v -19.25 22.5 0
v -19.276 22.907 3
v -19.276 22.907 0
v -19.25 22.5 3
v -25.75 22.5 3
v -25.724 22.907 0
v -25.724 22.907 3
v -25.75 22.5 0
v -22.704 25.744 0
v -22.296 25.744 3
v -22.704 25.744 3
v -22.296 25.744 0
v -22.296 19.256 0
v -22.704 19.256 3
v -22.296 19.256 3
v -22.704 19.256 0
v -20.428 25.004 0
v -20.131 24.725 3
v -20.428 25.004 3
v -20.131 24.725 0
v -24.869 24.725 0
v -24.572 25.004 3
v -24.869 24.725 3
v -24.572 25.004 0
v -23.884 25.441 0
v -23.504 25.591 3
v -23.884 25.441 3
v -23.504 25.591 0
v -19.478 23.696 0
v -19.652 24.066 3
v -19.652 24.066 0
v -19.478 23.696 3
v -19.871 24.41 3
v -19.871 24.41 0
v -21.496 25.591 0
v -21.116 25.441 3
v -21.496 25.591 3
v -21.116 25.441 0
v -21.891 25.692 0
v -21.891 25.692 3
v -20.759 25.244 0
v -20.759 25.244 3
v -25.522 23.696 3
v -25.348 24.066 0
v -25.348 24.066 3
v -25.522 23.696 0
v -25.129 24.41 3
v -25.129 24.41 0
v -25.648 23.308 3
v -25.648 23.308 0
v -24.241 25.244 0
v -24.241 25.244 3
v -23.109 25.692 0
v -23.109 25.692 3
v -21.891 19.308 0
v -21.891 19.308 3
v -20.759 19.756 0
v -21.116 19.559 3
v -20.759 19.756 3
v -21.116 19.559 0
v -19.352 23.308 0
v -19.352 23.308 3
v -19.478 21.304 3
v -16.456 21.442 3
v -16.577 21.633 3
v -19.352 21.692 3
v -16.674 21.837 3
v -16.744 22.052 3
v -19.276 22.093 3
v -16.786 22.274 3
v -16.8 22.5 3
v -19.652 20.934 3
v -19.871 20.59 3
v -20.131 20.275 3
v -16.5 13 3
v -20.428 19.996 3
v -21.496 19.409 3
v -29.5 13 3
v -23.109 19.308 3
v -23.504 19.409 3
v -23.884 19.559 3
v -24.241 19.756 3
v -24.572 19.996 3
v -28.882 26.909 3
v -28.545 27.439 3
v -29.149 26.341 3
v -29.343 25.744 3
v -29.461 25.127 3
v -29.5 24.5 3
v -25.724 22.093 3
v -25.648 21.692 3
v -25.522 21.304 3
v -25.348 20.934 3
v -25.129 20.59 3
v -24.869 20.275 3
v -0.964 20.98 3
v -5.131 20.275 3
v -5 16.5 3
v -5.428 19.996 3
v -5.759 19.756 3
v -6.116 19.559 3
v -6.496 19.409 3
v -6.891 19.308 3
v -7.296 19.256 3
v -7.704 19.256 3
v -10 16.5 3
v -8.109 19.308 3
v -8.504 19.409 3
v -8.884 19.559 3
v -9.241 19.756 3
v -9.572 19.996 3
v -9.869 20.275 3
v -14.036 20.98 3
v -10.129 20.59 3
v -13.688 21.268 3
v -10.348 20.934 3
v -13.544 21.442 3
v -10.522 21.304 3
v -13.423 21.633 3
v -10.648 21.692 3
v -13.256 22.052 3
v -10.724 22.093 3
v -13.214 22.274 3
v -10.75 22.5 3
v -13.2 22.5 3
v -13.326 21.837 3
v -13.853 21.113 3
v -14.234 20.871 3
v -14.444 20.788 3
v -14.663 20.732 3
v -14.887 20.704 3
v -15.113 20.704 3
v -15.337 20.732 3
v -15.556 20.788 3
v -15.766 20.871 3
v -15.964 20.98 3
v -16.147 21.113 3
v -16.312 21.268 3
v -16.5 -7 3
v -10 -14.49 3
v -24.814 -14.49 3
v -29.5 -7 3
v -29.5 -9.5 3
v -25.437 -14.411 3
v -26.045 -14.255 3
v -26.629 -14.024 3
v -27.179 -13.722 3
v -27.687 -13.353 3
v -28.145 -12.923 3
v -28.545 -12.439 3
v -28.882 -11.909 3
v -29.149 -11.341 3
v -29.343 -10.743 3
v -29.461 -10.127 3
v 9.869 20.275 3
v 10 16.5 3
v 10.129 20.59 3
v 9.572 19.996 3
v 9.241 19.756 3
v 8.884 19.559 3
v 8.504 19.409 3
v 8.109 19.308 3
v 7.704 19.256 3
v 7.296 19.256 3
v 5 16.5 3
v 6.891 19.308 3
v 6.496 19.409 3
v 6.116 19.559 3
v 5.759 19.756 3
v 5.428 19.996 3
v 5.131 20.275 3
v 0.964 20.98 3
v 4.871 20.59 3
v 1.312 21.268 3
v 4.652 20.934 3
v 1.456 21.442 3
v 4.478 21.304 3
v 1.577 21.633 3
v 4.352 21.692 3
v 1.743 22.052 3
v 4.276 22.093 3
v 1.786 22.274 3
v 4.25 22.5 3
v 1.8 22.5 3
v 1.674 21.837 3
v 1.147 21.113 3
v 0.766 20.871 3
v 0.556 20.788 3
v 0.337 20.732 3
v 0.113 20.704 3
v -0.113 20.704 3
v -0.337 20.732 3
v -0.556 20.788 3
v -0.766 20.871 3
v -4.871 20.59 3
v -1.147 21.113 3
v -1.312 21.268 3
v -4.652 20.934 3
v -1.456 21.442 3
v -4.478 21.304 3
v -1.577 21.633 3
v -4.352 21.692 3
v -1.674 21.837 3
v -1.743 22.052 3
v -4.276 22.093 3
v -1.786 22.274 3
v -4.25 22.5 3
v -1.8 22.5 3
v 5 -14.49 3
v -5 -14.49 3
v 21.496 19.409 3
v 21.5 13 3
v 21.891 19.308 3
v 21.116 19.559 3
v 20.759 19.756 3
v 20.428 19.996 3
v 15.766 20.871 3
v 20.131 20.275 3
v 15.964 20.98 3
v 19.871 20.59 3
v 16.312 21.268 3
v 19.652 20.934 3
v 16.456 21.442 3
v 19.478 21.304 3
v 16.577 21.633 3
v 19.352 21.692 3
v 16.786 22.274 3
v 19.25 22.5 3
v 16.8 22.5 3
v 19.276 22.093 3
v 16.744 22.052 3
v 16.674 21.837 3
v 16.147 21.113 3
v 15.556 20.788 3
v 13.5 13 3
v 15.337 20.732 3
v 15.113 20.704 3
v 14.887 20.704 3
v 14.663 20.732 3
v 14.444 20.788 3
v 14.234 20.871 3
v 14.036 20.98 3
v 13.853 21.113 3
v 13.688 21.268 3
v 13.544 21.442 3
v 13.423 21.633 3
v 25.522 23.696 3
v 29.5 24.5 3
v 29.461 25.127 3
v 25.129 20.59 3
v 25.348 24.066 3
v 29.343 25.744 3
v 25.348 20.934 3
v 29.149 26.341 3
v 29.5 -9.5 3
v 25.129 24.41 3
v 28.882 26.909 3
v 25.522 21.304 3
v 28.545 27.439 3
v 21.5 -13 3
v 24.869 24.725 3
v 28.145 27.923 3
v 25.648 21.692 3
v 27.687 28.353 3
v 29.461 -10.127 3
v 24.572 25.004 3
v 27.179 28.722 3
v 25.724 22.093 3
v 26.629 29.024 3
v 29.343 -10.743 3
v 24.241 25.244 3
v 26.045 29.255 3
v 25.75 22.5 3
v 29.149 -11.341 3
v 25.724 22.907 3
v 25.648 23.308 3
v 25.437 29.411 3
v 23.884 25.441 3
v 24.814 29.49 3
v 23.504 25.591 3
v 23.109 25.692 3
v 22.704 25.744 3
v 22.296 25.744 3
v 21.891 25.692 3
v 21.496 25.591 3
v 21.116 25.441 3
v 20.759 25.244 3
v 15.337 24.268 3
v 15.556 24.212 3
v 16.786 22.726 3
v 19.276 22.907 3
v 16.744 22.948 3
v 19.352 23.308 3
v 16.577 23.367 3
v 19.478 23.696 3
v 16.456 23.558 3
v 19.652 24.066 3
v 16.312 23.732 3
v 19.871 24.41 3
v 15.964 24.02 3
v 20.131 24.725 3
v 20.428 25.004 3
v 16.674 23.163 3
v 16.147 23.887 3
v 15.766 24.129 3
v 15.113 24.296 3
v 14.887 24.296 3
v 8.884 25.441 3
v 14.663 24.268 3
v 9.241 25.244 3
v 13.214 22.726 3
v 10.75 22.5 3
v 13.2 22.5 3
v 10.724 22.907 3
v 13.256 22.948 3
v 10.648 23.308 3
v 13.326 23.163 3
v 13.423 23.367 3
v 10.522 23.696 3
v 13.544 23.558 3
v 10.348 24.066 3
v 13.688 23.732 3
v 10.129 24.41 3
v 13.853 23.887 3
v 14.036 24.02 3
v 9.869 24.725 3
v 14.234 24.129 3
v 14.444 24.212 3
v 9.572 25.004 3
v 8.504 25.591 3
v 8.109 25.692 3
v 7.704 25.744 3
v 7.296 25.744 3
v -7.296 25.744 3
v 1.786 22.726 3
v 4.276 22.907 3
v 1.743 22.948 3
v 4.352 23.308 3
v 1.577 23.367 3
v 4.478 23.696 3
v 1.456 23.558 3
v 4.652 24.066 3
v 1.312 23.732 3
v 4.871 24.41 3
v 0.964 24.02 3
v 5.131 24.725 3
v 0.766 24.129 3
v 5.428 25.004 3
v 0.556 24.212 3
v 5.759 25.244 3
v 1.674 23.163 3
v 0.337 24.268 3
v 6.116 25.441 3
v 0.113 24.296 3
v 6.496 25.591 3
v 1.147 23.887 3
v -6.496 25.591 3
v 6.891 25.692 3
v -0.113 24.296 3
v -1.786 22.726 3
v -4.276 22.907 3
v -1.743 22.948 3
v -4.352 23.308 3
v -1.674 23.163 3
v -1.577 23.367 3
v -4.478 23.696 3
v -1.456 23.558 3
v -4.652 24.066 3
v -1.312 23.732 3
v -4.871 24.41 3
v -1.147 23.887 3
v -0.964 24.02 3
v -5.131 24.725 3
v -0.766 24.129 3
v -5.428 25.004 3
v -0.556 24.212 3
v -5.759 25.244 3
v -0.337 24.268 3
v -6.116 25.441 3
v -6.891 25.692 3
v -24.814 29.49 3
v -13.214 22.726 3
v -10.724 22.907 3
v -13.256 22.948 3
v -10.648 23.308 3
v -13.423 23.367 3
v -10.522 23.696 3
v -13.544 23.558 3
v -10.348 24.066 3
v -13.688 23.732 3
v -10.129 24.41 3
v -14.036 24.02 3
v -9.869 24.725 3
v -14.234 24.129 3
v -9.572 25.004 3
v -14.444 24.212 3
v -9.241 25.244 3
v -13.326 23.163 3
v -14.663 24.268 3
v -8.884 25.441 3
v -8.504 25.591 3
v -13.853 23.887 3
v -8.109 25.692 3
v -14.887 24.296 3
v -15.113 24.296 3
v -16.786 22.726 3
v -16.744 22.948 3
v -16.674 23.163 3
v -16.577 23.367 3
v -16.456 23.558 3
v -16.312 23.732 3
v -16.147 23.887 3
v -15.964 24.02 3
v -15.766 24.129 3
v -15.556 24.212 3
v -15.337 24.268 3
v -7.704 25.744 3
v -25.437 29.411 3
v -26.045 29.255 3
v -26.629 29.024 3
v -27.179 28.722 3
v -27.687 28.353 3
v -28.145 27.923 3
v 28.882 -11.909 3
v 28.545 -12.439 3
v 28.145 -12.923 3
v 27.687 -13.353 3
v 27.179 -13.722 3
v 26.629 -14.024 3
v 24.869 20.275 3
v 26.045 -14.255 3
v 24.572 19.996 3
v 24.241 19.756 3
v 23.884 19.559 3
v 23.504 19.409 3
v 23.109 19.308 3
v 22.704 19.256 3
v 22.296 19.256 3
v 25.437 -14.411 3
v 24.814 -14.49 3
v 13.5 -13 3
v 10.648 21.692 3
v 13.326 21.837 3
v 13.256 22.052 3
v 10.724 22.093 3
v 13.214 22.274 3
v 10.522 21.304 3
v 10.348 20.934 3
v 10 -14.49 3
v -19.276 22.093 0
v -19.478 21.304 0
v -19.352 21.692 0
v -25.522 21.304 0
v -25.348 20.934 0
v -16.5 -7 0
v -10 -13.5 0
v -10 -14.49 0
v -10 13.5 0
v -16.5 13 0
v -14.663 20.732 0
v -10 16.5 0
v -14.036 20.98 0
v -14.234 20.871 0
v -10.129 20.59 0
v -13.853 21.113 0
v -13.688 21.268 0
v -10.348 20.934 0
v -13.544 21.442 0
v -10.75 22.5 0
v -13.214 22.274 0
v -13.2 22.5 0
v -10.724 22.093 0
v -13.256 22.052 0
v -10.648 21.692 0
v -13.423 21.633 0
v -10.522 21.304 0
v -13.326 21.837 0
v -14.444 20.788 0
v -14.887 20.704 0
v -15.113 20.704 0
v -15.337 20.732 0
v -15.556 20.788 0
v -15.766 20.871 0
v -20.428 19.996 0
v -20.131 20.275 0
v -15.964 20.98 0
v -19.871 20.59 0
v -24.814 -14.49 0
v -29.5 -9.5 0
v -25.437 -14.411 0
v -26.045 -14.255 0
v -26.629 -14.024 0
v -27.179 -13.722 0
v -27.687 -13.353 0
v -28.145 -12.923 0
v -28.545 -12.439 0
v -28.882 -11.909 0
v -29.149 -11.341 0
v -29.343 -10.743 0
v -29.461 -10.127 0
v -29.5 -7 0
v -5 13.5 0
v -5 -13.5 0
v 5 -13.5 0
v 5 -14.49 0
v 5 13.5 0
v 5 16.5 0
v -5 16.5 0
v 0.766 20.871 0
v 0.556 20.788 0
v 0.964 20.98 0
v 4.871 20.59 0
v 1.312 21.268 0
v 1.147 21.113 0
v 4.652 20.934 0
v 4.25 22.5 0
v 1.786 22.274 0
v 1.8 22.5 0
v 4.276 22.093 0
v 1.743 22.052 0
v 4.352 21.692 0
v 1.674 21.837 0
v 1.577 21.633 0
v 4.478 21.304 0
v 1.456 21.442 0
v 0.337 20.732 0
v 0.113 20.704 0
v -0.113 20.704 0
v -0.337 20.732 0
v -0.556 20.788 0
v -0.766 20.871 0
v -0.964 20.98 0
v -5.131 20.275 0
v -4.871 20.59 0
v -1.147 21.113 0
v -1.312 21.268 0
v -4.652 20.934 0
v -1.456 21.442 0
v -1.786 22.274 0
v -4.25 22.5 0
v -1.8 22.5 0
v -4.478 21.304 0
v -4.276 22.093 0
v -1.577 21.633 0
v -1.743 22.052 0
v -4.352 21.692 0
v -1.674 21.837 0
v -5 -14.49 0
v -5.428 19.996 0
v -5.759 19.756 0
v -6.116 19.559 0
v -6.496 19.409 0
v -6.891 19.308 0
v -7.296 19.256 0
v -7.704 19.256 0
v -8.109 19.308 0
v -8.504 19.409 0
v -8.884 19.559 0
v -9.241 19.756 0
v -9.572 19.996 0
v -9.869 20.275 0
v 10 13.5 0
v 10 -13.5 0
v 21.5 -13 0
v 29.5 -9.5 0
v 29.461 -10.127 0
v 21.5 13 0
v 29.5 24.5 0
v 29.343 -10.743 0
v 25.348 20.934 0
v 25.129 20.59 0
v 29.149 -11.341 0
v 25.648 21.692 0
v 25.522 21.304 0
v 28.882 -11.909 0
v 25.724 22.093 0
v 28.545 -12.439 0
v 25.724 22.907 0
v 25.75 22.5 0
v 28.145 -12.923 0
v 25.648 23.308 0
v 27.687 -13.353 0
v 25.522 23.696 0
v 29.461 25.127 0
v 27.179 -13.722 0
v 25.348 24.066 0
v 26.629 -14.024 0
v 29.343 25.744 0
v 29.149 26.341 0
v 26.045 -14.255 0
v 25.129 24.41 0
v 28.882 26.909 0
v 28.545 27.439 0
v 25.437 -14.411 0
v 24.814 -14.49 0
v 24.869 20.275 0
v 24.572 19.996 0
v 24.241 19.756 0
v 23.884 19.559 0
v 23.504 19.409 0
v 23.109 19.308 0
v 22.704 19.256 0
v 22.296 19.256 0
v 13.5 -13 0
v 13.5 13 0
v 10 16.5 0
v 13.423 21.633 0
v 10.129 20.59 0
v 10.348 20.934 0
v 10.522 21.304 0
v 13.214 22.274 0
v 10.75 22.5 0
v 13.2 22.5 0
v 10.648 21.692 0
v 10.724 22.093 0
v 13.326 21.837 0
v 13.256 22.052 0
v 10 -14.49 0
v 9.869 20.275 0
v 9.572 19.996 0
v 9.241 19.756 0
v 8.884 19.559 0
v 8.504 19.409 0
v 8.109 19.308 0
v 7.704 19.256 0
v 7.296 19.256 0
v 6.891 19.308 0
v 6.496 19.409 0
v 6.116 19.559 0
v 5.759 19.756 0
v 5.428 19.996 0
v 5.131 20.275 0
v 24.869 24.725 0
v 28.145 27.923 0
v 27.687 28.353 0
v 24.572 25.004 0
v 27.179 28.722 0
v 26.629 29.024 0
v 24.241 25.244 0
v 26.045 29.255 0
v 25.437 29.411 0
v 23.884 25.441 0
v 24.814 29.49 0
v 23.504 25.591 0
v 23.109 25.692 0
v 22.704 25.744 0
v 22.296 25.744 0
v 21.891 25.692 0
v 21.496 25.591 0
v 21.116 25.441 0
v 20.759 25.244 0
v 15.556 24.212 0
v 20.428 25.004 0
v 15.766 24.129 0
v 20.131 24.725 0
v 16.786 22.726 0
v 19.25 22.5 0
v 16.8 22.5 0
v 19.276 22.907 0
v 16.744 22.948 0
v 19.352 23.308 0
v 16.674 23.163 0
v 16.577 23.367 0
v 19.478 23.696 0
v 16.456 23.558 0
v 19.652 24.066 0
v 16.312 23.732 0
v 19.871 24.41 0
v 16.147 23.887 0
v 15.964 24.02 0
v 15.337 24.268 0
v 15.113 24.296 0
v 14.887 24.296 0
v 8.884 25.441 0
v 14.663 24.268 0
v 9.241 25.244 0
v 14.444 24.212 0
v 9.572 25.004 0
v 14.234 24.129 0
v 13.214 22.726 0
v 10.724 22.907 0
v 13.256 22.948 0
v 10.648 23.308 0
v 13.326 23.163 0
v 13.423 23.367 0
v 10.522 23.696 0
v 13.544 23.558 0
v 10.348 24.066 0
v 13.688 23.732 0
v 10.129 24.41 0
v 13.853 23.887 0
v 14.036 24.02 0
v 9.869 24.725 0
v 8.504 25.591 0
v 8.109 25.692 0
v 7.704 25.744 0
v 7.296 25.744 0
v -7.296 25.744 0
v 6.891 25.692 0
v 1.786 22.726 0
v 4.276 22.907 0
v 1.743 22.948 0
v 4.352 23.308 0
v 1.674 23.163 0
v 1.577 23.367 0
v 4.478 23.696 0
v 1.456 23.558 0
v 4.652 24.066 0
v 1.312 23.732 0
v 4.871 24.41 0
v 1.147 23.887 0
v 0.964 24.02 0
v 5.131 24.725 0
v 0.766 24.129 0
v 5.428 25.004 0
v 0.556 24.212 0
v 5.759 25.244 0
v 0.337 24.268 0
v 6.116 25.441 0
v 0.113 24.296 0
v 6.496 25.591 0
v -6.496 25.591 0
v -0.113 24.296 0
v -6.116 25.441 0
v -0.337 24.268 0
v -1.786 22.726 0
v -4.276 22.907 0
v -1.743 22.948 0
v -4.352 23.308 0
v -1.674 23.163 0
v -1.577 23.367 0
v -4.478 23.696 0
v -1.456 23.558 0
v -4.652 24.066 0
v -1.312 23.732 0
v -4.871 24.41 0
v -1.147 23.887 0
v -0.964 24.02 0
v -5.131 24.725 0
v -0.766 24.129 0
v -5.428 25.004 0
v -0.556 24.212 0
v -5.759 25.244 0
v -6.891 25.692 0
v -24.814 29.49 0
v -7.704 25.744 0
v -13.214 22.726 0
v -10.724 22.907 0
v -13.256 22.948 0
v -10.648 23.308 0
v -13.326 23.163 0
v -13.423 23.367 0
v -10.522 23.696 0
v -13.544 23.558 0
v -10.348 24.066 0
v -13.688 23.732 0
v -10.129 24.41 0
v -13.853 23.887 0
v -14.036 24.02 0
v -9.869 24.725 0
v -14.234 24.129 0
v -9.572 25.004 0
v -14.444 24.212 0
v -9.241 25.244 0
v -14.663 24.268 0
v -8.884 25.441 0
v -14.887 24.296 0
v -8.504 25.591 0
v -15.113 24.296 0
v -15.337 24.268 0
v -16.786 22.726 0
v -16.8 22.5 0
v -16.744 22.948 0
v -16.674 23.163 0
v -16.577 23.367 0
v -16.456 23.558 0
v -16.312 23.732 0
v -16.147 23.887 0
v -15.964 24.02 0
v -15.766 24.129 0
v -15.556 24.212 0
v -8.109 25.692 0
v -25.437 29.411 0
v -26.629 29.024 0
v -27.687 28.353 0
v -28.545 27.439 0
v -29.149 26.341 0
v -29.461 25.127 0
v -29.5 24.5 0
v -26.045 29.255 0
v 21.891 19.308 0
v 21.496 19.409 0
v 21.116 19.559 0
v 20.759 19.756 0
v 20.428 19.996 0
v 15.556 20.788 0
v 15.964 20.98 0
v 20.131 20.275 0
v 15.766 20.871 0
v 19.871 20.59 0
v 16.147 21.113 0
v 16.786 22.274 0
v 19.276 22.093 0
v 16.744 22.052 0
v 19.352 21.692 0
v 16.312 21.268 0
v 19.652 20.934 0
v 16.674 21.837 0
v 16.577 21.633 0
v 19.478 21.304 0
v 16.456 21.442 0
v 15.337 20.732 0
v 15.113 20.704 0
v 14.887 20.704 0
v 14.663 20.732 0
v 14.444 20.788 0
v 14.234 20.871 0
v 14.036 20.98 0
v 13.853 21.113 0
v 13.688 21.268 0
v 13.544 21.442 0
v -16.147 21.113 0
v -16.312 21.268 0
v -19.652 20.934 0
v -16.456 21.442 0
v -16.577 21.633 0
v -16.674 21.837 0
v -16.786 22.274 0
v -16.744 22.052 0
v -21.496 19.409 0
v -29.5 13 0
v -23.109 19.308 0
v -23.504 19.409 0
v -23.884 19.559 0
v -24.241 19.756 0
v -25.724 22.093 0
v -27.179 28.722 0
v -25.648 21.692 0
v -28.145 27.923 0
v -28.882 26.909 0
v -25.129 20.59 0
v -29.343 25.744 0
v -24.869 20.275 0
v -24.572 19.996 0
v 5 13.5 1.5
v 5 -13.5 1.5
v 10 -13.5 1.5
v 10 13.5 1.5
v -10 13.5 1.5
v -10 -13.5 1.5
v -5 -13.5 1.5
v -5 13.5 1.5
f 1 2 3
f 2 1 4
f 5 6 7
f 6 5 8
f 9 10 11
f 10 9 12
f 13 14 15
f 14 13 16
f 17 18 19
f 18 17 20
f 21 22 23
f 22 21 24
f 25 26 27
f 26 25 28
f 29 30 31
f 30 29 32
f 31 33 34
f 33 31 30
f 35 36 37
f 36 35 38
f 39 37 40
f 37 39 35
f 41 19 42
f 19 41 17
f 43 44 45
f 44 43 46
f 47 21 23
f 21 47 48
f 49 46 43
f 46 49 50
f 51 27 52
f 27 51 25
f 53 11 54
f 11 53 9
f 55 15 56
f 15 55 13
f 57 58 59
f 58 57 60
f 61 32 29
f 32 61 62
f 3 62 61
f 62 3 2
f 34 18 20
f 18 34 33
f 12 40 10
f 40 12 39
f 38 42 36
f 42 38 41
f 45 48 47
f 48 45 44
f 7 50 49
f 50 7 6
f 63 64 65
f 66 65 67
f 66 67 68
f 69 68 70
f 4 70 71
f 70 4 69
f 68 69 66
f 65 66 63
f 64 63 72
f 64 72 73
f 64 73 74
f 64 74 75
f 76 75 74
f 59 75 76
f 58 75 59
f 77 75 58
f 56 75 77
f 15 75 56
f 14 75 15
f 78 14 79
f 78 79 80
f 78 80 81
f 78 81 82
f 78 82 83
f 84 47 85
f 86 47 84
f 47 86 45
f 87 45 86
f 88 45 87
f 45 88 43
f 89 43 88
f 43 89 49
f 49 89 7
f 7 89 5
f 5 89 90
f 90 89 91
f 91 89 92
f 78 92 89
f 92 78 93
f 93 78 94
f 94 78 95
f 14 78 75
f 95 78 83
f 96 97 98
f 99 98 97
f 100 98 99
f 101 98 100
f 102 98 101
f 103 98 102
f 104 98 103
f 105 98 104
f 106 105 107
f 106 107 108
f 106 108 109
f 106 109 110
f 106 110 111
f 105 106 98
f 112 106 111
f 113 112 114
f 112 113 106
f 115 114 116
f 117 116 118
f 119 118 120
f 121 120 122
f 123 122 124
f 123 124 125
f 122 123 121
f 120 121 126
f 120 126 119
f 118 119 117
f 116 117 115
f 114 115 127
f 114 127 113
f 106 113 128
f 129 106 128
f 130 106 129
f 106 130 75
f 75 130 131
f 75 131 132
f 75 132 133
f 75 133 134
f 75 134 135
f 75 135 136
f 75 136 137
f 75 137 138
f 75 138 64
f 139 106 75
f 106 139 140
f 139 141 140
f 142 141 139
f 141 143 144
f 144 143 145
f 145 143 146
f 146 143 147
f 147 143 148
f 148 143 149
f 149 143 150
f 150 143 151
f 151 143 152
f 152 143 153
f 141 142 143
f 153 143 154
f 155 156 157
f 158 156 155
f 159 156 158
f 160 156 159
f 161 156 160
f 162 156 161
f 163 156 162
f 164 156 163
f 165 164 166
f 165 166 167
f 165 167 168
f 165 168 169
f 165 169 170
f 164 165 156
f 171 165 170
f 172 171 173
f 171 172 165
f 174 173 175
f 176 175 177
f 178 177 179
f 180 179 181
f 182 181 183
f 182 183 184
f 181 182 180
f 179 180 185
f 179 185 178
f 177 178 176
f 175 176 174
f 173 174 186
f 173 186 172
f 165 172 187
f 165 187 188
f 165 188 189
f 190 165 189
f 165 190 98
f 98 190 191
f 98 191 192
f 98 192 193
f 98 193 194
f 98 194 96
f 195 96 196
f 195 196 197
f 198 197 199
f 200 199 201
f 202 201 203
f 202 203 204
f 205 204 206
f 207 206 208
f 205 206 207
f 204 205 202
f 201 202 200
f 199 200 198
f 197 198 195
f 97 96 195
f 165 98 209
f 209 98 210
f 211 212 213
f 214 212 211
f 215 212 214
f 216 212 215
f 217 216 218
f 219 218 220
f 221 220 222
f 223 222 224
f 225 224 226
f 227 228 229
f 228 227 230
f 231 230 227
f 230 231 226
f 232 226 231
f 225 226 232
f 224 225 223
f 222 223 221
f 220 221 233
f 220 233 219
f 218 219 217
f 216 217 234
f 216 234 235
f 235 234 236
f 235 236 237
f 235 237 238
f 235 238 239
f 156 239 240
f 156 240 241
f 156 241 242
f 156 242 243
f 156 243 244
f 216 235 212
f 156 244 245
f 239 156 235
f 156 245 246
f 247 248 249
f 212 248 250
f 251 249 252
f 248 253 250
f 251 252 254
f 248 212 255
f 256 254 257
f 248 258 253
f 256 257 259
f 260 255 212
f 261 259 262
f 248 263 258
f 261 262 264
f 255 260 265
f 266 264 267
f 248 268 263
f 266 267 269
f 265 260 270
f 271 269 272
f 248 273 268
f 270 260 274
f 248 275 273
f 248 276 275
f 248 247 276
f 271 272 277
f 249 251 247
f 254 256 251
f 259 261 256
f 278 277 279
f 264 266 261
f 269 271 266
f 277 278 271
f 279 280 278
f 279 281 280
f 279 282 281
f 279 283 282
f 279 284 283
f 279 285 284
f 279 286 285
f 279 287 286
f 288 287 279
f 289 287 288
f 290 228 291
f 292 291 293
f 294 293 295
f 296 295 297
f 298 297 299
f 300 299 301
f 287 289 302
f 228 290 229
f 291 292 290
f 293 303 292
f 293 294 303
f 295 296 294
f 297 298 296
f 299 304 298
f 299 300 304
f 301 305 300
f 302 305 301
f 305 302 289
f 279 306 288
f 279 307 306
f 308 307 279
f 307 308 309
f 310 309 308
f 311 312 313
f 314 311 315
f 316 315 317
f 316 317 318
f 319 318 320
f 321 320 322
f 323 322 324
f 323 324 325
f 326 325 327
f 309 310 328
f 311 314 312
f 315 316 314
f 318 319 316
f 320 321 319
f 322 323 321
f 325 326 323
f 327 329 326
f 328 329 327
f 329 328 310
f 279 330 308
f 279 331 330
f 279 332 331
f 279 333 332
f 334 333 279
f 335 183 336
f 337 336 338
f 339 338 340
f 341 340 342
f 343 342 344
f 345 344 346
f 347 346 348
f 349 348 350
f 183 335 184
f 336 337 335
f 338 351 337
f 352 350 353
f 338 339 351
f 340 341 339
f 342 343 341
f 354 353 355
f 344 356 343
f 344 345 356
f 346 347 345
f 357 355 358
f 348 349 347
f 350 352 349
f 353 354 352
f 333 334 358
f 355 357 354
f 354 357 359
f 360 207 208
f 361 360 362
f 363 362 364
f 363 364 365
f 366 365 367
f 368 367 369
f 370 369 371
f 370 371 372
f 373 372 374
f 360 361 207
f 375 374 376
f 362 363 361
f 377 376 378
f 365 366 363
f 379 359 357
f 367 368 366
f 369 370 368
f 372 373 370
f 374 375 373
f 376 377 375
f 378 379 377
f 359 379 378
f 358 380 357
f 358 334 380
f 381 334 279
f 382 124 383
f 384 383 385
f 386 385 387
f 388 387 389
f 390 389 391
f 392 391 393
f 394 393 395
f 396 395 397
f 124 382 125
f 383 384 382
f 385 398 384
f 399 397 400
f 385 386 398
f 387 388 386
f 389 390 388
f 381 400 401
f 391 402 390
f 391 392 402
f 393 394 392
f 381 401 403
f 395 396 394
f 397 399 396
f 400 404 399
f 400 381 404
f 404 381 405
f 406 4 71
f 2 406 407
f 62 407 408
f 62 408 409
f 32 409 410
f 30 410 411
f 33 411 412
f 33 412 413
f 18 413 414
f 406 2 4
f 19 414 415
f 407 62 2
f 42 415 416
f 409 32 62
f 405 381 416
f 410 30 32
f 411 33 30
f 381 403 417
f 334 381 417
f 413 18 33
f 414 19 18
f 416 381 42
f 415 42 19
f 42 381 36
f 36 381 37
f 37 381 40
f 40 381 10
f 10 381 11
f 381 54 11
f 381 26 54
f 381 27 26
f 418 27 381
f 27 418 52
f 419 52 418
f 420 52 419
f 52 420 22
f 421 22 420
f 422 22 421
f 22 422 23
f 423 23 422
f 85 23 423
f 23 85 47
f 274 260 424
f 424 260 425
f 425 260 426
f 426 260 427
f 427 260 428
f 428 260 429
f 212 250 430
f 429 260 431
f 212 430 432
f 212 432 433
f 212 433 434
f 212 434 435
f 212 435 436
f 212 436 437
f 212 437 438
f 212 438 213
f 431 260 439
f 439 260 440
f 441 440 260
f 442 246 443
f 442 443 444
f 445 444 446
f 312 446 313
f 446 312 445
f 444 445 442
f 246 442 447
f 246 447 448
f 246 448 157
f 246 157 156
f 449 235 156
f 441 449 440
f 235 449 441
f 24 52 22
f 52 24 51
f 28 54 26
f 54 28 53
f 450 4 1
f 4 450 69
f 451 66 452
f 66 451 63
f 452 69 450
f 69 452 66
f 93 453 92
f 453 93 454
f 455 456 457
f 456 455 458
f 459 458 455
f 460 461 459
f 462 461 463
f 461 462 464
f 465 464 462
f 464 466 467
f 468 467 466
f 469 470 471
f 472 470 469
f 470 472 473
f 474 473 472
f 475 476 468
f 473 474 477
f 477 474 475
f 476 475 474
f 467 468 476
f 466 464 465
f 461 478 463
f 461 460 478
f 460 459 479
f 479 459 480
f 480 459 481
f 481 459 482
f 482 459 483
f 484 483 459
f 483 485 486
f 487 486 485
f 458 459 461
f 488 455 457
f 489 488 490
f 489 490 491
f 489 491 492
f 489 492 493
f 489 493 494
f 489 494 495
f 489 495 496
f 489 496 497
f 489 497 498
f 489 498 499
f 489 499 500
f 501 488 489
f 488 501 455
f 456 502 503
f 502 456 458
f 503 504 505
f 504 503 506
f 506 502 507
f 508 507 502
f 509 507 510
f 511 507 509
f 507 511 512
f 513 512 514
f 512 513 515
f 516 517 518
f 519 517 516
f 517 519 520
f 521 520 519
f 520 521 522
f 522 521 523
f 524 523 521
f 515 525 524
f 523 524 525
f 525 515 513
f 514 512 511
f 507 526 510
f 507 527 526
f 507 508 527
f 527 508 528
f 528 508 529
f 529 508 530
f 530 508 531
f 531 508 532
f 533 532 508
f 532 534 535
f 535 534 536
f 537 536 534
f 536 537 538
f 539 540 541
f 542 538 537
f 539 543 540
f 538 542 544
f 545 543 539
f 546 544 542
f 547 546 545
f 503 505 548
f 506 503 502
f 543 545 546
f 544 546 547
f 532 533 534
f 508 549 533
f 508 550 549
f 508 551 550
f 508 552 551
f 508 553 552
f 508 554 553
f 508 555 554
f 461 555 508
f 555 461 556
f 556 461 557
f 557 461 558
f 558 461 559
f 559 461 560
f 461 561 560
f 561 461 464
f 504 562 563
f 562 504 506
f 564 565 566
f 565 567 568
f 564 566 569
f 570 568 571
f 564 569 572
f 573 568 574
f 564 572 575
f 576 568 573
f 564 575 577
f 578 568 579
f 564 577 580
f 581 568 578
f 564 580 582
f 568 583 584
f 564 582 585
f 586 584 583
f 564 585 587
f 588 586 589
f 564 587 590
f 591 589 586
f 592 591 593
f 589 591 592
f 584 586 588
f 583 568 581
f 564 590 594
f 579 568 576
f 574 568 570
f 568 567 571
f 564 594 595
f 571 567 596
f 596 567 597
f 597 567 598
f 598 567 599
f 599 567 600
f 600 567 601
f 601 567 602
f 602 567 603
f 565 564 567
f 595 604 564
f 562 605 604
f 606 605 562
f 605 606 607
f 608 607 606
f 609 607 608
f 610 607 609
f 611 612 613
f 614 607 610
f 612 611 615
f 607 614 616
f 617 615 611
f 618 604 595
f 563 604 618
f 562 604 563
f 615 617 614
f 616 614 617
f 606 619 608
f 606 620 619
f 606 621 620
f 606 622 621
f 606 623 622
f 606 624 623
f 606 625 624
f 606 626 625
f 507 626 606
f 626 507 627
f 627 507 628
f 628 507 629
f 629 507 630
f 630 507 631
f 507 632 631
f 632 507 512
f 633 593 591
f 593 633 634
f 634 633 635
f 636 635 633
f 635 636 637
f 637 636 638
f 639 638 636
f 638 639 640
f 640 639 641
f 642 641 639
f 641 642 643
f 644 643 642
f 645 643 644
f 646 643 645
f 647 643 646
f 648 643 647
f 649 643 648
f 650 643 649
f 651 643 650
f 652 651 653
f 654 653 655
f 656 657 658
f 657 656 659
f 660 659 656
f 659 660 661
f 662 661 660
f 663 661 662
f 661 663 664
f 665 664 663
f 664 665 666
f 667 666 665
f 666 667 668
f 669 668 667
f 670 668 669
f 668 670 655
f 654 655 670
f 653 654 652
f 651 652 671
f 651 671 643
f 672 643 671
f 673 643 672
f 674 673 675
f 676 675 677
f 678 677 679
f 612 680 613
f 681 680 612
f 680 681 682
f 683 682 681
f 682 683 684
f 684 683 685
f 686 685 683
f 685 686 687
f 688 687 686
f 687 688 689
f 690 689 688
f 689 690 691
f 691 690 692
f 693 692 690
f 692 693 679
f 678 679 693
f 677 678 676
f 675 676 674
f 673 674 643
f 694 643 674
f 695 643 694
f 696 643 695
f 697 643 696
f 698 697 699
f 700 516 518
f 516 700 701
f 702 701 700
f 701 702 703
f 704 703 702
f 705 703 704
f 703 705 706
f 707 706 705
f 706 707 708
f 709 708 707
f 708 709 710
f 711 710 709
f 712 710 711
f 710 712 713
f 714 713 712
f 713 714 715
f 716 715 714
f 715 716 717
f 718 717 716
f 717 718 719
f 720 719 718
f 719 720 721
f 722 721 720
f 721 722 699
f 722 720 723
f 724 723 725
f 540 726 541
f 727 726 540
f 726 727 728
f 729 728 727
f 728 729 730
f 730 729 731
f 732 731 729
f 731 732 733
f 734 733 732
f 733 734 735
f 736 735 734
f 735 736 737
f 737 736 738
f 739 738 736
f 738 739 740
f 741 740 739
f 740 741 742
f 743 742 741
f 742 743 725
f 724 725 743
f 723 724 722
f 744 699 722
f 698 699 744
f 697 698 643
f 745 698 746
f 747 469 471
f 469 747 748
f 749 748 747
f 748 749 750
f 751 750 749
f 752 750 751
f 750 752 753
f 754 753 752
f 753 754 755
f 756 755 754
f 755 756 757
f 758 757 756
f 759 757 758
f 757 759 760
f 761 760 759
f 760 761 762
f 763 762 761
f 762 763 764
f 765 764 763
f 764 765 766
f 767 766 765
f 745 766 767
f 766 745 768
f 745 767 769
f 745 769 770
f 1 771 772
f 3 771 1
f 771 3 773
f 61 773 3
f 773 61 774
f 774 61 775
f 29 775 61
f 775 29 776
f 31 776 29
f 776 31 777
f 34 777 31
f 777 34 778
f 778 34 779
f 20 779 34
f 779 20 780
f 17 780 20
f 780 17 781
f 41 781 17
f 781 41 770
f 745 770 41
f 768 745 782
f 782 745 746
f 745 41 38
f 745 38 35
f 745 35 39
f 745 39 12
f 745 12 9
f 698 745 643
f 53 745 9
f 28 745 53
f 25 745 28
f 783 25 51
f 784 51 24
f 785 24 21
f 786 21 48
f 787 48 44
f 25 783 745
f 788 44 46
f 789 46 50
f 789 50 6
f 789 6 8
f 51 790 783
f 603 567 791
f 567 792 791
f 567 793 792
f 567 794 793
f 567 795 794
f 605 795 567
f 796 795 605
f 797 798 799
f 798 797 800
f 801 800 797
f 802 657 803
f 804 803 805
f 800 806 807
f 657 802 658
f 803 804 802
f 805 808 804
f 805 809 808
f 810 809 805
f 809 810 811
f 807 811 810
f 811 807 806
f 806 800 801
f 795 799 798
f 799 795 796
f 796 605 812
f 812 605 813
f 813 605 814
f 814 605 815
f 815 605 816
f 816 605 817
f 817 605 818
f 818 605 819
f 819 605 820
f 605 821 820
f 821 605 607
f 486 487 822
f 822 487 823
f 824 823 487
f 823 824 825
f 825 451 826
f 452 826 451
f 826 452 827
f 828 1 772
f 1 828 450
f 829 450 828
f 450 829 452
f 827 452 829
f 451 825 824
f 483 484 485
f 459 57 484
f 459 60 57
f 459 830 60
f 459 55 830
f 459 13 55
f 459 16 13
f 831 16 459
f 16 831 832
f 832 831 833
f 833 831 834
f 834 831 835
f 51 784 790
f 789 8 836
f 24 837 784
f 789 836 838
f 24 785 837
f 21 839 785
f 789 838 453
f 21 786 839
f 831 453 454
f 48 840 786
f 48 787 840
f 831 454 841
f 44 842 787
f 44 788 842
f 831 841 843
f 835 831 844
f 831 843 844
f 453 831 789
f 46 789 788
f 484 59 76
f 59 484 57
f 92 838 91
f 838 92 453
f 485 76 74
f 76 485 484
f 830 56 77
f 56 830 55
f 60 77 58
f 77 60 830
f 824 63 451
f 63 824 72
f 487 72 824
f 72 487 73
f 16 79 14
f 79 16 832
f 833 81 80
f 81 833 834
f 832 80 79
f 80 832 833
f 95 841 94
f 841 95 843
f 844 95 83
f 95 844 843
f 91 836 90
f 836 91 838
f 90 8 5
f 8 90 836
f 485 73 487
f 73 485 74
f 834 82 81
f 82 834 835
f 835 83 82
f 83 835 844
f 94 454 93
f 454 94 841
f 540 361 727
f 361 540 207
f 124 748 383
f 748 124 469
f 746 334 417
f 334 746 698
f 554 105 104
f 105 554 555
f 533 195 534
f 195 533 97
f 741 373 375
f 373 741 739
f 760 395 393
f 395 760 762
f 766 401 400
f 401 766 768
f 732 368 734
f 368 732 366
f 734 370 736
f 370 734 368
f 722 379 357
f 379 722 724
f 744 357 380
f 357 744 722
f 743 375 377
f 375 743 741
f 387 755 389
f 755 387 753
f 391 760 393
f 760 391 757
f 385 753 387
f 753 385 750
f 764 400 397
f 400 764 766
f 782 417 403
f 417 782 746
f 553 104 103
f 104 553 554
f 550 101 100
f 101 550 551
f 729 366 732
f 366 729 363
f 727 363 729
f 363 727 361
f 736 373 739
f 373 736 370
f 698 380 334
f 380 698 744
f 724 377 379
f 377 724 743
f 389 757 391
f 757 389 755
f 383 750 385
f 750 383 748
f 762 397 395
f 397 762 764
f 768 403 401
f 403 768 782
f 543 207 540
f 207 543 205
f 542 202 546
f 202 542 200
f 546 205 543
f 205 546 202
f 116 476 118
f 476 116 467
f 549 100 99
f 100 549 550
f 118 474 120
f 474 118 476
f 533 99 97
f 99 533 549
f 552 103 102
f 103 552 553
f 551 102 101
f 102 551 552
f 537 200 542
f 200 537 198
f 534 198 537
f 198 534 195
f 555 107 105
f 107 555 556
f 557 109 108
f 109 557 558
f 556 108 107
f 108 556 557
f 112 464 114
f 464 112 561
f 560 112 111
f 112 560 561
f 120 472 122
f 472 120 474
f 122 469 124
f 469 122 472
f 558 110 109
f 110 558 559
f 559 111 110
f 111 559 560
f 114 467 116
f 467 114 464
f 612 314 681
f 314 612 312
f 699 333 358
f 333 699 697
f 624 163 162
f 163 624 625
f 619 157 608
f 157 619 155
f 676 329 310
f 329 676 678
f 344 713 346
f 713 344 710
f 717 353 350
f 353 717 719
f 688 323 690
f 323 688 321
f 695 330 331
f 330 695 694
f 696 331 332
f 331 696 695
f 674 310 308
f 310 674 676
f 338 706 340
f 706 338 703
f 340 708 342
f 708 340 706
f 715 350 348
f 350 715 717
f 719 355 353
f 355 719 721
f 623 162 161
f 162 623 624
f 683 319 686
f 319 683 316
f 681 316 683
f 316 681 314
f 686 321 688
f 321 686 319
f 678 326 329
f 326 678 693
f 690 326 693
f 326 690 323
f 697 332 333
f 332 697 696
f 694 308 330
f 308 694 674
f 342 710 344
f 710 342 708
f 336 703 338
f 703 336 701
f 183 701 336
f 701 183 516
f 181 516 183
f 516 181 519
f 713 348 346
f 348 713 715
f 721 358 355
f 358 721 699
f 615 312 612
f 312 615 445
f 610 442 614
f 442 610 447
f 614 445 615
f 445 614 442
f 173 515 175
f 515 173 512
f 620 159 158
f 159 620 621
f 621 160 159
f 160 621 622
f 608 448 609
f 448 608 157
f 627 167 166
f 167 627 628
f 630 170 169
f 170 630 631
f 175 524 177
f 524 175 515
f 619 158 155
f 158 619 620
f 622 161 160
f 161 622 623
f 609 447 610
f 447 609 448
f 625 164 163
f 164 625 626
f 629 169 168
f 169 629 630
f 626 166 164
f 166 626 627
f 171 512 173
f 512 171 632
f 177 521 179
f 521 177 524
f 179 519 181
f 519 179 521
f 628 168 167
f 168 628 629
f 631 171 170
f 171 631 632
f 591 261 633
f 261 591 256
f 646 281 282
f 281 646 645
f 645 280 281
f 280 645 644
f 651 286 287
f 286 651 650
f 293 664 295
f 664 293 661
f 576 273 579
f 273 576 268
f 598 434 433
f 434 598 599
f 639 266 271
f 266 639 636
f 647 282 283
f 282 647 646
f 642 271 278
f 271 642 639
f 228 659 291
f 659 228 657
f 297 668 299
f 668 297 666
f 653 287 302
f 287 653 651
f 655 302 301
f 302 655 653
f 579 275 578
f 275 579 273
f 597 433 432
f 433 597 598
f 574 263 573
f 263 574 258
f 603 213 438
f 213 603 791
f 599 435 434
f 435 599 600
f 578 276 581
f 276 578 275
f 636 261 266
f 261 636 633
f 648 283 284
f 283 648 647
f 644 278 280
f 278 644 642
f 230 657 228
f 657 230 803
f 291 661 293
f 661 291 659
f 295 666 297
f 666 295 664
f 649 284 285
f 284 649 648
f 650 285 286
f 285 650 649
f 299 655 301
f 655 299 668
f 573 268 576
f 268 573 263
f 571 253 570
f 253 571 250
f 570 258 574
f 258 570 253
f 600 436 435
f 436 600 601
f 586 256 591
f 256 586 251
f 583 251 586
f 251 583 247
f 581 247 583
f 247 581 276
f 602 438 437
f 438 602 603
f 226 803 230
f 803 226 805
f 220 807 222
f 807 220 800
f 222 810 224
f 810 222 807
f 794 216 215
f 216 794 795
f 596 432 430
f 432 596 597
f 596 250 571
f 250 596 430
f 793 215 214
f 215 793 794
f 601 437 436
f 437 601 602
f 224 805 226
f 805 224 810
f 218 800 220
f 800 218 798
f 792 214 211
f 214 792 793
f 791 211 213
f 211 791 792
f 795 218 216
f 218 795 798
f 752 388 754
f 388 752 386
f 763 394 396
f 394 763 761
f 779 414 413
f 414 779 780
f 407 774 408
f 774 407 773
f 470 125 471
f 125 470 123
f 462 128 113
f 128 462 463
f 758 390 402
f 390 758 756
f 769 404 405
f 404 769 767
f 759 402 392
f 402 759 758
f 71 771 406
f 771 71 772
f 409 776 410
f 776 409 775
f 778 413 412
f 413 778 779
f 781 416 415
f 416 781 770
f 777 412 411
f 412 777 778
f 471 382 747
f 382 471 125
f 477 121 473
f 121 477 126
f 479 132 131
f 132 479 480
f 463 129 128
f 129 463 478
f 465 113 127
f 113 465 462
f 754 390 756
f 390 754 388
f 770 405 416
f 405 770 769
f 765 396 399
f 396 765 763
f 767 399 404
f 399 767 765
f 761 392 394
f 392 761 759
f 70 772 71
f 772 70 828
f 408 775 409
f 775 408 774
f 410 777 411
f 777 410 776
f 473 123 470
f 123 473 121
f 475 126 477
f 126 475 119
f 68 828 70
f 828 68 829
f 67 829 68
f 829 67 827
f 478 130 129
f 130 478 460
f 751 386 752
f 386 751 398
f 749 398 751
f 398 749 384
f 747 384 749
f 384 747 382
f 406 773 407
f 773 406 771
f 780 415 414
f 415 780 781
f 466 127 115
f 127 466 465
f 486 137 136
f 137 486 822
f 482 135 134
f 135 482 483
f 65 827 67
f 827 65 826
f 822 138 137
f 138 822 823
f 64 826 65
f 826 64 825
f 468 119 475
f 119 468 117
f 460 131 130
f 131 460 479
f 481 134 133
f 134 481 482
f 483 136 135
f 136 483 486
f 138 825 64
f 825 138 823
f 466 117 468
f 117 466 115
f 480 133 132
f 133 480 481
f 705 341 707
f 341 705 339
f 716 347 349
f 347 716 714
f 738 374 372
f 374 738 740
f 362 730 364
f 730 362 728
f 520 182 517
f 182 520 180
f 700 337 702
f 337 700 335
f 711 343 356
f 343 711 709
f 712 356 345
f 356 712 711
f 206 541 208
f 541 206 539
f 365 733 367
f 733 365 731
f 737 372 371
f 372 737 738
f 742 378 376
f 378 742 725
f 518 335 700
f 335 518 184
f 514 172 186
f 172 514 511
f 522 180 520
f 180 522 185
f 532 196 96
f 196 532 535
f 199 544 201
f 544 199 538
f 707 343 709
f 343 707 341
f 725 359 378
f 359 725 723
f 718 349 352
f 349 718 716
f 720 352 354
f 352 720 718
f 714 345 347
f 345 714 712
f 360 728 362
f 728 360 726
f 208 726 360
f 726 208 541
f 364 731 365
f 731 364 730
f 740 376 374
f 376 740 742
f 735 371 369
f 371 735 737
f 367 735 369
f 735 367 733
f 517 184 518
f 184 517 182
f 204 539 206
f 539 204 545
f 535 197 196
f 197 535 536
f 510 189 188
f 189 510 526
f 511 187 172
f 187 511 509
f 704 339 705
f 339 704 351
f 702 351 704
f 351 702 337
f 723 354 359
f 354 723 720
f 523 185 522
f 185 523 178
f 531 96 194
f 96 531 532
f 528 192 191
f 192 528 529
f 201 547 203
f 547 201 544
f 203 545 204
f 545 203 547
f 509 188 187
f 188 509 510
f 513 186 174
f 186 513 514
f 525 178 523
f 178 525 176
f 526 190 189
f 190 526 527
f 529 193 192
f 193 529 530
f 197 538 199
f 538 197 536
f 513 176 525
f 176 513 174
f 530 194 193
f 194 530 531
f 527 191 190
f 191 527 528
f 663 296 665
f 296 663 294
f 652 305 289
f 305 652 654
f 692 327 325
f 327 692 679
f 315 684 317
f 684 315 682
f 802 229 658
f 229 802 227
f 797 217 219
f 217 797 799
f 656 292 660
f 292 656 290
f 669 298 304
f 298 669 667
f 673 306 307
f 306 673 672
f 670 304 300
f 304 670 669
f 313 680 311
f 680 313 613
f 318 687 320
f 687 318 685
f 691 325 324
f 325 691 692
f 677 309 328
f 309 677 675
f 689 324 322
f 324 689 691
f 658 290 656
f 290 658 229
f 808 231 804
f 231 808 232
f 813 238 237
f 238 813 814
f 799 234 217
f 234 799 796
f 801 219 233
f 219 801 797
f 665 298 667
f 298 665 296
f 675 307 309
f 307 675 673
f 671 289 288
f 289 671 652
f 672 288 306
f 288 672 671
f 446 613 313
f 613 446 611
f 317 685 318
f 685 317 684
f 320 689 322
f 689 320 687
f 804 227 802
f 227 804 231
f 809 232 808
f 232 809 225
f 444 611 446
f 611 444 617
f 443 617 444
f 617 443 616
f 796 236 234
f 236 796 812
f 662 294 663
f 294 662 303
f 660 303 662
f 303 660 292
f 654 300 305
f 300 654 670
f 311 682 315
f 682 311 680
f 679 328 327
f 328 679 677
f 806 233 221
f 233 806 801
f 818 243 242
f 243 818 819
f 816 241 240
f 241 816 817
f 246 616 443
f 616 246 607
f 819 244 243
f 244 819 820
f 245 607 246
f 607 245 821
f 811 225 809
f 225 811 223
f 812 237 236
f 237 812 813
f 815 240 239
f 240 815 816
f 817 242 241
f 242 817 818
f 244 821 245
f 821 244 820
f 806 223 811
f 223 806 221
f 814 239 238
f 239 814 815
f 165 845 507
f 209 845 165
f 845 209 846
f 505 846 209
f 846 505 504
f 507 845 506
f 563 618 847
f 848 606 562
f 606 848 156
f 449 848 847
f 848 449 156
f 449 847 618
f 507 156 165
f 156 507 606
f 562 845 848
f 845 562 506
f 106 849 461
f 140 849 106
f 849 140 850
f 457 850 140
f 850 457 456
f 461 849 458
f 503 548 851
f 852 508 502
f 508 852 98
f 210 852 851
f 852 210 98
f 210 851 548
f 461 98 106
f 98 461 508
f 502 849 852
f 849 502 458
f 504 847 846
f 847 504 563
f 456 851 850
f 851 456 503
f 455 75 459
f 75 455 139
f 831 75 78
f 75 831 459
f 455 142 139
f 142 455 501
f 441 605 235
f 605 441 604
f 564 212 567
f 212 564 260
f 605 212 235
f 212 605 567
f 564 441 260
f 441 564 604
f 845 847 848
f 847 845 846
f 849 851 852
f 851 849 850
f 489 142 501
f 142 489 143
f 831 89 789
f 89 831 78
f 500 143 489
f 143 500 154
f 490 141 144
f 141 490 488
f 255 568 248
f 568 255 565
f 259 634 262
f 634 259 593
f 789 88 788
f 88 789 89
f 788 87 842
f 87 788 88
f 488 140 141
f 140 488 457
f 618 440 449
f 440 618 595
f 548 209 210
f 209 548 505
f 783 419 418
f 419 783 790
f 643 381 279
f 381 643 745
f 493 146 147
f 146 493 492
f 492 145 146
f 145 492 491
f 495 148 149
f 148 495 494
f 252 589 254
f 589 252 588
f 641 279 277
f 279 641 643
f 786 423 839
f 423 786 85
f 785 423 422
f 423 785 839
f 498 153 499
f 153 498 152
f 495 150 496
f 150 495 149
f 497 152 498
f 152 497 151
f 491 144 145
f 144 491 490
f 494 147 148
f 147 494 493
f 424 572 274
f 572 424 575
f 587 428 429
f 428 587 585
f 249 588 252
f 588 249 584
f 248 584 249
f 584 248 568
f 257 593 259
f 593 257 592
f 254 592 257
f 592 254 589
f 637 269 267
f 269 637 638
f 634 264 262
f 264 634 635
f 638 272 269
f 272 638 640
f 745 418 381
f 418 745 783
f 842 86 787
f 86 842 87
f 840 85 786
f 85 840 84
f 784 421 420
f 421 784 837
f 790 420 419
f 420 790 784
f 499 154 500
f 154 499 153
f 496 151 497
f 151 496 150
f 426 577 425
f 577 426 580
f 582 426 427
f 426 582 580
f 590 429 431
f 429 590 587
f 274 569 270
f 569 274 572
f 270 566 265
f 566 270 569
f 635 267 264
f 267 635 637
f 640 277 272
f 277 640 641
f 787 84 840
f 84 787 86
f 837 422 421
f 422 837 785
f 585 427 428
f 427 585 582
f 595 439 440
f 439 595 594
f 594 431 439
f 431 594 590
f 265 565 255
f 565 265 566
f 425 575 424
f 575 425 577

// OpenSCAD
$fn = 50;


difference() {
	union() {
		translate(v = [0, 7.5000000000, 0]) {
			hull() {
				translate(v = [-24.5000000000, 17.0000000000, 0]) {
					cylinder(h = 3, r = 5);
				}
				translate(v = [24.5000000000, 17.0000000000, 0]) {
					cylinder(h = 3, r = 5);
				}
				translate(v = [-24.5000000000, -17.0000000000, 0]) {
					cylinder(h = 3, r = 5);
				}
				translate(v = [24.5000000000, -17.0000000000, 0]) {
					cylinder(h = 3, r = 5);
				}
			}
		}
	}
	union() {
		translate(v = [-22.5000000000, 22.5000000000, 0]) {
			cylinder(h = 3, r = 3.2500000000);
		}
		translate(v = [-7.5000000000, 22.5000000000, 0]) {
			cylinder(h = 3, r = 3.2500000000);
		}
		translate(v = [7.5000000000, 22.5000000000, 0]) {
			cylinder(h = 3, r = 3.2500000000);
		}
		translate(v = [22.5000000000, 22.5000000000, 0]) {
			cylinder(h = 3, r = 3.2500000000);
		}
		translate(v = [-22.5000000000, 22.5000000000, 0]) {
			cylinder(h = 3, r = 1.8000000000);
		}
		translate(v = [-15.0000000000, 22.5000000000, 0]) {
			cylinder(h = 3, r = 1.8000000000);
		}
		translate(v = [-7.5000000000, 22.5000000000, 0]) {
			cylinder(h = 3, r = 1.8000000000);
		}
		translate(v = [0.0000000000, 22.5000000000, 0]) {
			cylinder(h = 3, r = 1.8000000000);
		}
		translate(v = [7.5000000000, 22.5000000000, 0]) {
			cylinder(h = 3, r = 1.8000000000);
		}
		translate(v = [15.0000000000, 22.5000000000, 0]) {
			cylinder(h = 3, r = 1.8000000000);
		}
		translate(v = [22.5000000000, 22.5000000000, 0]) {
			cylinder(h = 3, r = 1.8000000000);
		}
		translate(v = [-22.5000000000, 22.5000000000, 0]) {
			cylinder(h = 3, r = 1.8000000000);
		}
		translate(v = [-15.0000000000, 22.5000000000, 0]) {
			cylinder(h = 3, r = 1.8000000000);
		}
		translate(v = [-7.5000000000, 22.5000000000, 0]) {
			cylinder(h = 3, r = 1.8000000000);
		}
		translate(v = [0.0000000000, 22.5000000000, 0]) {
			cylinder(h = 3, r = 1.8000000000);
		}
		translate(v = [7.5000000000, 22.5000000000, 0]) {
			cylinder(h = 3, r = 1.8000000000);
		}
		translate(v = [15.0000000000, 22.5000000000, 0]) {
			cylinder(h = 3, r = 1.8000000000);
		}
		translate(v = [22.5000000000, 22.5000000000, 0]) {
			cylinder(h = 3, r = 1.8000000000);
		}
		translate(v = [-22.5000000000, 22.5000000000, 0]) {
			cylinder(h = 3, r = 1.8000000000);
		}
		translate(v = [-15.0000000000, 22.5000000000, 0]) {
			cylinder(h = 3, r = 1.8000000000);
		}
		translate(v = [-7.5000000000, 22.5000000000, 0]) {
			cylinder(h = 3, r = 1.8000000000);
		}
		translate(v = [0.0000000000, 22.5000000000, 0]) {
			cylinder(h = 3, r = 1.8000000000);
		}
		translate(v = [7.5000000000, 22.5000000000, 0]) {
			cylinder(h = 3, r = 1.8000000000);
		}
		translate(v = [15.0000000000, 22.5000000000, 0]) {
			cylinder(h = 3, r = 1.8000000000);
		}
		translate(v = [22.5000000000, 22.5000000000, 0]) {
			cylinder(h = 3, r = 1.8000000000);
		}
		translate(v = [5.0000000000, 13.5000000000, 0]) {
			cube(size = [5, 3, 3]);
		}
		translate(v = [-10.0000000000, 13.5000000000, 0]) {
			cube(size = [5, 3, 3]);
		}
		translate(v = [5.0000000000, -16.5000000000, 0]) {
			cube(size = [5, 3, 3]);
		}
		translate(v = [-10.0000000000, -16.5000000000, 0]) {
			cube(size = [5, 3, 3]);
		}
		#translate(v = [-31.5000000000, -7.0000000000, 0]) {
			cube(size = [15, 20, 3]);
		}
		#translate(v = [13.5000000000, -13.0000000000, 0]) {
			cube(size = [8, 26, 3]);
		}
		#translate(v = [5.0000000000, -16.5000000000, 1.5000000000]) {
			cube(size = [5, 33, 1.5000000000]);
		}
		#translate(v = [-10.0000000000, -16.5000000000, 1.5000000000]) {
			cube(size = [5, 33, 1.5000000000]);
		}
	}
}
